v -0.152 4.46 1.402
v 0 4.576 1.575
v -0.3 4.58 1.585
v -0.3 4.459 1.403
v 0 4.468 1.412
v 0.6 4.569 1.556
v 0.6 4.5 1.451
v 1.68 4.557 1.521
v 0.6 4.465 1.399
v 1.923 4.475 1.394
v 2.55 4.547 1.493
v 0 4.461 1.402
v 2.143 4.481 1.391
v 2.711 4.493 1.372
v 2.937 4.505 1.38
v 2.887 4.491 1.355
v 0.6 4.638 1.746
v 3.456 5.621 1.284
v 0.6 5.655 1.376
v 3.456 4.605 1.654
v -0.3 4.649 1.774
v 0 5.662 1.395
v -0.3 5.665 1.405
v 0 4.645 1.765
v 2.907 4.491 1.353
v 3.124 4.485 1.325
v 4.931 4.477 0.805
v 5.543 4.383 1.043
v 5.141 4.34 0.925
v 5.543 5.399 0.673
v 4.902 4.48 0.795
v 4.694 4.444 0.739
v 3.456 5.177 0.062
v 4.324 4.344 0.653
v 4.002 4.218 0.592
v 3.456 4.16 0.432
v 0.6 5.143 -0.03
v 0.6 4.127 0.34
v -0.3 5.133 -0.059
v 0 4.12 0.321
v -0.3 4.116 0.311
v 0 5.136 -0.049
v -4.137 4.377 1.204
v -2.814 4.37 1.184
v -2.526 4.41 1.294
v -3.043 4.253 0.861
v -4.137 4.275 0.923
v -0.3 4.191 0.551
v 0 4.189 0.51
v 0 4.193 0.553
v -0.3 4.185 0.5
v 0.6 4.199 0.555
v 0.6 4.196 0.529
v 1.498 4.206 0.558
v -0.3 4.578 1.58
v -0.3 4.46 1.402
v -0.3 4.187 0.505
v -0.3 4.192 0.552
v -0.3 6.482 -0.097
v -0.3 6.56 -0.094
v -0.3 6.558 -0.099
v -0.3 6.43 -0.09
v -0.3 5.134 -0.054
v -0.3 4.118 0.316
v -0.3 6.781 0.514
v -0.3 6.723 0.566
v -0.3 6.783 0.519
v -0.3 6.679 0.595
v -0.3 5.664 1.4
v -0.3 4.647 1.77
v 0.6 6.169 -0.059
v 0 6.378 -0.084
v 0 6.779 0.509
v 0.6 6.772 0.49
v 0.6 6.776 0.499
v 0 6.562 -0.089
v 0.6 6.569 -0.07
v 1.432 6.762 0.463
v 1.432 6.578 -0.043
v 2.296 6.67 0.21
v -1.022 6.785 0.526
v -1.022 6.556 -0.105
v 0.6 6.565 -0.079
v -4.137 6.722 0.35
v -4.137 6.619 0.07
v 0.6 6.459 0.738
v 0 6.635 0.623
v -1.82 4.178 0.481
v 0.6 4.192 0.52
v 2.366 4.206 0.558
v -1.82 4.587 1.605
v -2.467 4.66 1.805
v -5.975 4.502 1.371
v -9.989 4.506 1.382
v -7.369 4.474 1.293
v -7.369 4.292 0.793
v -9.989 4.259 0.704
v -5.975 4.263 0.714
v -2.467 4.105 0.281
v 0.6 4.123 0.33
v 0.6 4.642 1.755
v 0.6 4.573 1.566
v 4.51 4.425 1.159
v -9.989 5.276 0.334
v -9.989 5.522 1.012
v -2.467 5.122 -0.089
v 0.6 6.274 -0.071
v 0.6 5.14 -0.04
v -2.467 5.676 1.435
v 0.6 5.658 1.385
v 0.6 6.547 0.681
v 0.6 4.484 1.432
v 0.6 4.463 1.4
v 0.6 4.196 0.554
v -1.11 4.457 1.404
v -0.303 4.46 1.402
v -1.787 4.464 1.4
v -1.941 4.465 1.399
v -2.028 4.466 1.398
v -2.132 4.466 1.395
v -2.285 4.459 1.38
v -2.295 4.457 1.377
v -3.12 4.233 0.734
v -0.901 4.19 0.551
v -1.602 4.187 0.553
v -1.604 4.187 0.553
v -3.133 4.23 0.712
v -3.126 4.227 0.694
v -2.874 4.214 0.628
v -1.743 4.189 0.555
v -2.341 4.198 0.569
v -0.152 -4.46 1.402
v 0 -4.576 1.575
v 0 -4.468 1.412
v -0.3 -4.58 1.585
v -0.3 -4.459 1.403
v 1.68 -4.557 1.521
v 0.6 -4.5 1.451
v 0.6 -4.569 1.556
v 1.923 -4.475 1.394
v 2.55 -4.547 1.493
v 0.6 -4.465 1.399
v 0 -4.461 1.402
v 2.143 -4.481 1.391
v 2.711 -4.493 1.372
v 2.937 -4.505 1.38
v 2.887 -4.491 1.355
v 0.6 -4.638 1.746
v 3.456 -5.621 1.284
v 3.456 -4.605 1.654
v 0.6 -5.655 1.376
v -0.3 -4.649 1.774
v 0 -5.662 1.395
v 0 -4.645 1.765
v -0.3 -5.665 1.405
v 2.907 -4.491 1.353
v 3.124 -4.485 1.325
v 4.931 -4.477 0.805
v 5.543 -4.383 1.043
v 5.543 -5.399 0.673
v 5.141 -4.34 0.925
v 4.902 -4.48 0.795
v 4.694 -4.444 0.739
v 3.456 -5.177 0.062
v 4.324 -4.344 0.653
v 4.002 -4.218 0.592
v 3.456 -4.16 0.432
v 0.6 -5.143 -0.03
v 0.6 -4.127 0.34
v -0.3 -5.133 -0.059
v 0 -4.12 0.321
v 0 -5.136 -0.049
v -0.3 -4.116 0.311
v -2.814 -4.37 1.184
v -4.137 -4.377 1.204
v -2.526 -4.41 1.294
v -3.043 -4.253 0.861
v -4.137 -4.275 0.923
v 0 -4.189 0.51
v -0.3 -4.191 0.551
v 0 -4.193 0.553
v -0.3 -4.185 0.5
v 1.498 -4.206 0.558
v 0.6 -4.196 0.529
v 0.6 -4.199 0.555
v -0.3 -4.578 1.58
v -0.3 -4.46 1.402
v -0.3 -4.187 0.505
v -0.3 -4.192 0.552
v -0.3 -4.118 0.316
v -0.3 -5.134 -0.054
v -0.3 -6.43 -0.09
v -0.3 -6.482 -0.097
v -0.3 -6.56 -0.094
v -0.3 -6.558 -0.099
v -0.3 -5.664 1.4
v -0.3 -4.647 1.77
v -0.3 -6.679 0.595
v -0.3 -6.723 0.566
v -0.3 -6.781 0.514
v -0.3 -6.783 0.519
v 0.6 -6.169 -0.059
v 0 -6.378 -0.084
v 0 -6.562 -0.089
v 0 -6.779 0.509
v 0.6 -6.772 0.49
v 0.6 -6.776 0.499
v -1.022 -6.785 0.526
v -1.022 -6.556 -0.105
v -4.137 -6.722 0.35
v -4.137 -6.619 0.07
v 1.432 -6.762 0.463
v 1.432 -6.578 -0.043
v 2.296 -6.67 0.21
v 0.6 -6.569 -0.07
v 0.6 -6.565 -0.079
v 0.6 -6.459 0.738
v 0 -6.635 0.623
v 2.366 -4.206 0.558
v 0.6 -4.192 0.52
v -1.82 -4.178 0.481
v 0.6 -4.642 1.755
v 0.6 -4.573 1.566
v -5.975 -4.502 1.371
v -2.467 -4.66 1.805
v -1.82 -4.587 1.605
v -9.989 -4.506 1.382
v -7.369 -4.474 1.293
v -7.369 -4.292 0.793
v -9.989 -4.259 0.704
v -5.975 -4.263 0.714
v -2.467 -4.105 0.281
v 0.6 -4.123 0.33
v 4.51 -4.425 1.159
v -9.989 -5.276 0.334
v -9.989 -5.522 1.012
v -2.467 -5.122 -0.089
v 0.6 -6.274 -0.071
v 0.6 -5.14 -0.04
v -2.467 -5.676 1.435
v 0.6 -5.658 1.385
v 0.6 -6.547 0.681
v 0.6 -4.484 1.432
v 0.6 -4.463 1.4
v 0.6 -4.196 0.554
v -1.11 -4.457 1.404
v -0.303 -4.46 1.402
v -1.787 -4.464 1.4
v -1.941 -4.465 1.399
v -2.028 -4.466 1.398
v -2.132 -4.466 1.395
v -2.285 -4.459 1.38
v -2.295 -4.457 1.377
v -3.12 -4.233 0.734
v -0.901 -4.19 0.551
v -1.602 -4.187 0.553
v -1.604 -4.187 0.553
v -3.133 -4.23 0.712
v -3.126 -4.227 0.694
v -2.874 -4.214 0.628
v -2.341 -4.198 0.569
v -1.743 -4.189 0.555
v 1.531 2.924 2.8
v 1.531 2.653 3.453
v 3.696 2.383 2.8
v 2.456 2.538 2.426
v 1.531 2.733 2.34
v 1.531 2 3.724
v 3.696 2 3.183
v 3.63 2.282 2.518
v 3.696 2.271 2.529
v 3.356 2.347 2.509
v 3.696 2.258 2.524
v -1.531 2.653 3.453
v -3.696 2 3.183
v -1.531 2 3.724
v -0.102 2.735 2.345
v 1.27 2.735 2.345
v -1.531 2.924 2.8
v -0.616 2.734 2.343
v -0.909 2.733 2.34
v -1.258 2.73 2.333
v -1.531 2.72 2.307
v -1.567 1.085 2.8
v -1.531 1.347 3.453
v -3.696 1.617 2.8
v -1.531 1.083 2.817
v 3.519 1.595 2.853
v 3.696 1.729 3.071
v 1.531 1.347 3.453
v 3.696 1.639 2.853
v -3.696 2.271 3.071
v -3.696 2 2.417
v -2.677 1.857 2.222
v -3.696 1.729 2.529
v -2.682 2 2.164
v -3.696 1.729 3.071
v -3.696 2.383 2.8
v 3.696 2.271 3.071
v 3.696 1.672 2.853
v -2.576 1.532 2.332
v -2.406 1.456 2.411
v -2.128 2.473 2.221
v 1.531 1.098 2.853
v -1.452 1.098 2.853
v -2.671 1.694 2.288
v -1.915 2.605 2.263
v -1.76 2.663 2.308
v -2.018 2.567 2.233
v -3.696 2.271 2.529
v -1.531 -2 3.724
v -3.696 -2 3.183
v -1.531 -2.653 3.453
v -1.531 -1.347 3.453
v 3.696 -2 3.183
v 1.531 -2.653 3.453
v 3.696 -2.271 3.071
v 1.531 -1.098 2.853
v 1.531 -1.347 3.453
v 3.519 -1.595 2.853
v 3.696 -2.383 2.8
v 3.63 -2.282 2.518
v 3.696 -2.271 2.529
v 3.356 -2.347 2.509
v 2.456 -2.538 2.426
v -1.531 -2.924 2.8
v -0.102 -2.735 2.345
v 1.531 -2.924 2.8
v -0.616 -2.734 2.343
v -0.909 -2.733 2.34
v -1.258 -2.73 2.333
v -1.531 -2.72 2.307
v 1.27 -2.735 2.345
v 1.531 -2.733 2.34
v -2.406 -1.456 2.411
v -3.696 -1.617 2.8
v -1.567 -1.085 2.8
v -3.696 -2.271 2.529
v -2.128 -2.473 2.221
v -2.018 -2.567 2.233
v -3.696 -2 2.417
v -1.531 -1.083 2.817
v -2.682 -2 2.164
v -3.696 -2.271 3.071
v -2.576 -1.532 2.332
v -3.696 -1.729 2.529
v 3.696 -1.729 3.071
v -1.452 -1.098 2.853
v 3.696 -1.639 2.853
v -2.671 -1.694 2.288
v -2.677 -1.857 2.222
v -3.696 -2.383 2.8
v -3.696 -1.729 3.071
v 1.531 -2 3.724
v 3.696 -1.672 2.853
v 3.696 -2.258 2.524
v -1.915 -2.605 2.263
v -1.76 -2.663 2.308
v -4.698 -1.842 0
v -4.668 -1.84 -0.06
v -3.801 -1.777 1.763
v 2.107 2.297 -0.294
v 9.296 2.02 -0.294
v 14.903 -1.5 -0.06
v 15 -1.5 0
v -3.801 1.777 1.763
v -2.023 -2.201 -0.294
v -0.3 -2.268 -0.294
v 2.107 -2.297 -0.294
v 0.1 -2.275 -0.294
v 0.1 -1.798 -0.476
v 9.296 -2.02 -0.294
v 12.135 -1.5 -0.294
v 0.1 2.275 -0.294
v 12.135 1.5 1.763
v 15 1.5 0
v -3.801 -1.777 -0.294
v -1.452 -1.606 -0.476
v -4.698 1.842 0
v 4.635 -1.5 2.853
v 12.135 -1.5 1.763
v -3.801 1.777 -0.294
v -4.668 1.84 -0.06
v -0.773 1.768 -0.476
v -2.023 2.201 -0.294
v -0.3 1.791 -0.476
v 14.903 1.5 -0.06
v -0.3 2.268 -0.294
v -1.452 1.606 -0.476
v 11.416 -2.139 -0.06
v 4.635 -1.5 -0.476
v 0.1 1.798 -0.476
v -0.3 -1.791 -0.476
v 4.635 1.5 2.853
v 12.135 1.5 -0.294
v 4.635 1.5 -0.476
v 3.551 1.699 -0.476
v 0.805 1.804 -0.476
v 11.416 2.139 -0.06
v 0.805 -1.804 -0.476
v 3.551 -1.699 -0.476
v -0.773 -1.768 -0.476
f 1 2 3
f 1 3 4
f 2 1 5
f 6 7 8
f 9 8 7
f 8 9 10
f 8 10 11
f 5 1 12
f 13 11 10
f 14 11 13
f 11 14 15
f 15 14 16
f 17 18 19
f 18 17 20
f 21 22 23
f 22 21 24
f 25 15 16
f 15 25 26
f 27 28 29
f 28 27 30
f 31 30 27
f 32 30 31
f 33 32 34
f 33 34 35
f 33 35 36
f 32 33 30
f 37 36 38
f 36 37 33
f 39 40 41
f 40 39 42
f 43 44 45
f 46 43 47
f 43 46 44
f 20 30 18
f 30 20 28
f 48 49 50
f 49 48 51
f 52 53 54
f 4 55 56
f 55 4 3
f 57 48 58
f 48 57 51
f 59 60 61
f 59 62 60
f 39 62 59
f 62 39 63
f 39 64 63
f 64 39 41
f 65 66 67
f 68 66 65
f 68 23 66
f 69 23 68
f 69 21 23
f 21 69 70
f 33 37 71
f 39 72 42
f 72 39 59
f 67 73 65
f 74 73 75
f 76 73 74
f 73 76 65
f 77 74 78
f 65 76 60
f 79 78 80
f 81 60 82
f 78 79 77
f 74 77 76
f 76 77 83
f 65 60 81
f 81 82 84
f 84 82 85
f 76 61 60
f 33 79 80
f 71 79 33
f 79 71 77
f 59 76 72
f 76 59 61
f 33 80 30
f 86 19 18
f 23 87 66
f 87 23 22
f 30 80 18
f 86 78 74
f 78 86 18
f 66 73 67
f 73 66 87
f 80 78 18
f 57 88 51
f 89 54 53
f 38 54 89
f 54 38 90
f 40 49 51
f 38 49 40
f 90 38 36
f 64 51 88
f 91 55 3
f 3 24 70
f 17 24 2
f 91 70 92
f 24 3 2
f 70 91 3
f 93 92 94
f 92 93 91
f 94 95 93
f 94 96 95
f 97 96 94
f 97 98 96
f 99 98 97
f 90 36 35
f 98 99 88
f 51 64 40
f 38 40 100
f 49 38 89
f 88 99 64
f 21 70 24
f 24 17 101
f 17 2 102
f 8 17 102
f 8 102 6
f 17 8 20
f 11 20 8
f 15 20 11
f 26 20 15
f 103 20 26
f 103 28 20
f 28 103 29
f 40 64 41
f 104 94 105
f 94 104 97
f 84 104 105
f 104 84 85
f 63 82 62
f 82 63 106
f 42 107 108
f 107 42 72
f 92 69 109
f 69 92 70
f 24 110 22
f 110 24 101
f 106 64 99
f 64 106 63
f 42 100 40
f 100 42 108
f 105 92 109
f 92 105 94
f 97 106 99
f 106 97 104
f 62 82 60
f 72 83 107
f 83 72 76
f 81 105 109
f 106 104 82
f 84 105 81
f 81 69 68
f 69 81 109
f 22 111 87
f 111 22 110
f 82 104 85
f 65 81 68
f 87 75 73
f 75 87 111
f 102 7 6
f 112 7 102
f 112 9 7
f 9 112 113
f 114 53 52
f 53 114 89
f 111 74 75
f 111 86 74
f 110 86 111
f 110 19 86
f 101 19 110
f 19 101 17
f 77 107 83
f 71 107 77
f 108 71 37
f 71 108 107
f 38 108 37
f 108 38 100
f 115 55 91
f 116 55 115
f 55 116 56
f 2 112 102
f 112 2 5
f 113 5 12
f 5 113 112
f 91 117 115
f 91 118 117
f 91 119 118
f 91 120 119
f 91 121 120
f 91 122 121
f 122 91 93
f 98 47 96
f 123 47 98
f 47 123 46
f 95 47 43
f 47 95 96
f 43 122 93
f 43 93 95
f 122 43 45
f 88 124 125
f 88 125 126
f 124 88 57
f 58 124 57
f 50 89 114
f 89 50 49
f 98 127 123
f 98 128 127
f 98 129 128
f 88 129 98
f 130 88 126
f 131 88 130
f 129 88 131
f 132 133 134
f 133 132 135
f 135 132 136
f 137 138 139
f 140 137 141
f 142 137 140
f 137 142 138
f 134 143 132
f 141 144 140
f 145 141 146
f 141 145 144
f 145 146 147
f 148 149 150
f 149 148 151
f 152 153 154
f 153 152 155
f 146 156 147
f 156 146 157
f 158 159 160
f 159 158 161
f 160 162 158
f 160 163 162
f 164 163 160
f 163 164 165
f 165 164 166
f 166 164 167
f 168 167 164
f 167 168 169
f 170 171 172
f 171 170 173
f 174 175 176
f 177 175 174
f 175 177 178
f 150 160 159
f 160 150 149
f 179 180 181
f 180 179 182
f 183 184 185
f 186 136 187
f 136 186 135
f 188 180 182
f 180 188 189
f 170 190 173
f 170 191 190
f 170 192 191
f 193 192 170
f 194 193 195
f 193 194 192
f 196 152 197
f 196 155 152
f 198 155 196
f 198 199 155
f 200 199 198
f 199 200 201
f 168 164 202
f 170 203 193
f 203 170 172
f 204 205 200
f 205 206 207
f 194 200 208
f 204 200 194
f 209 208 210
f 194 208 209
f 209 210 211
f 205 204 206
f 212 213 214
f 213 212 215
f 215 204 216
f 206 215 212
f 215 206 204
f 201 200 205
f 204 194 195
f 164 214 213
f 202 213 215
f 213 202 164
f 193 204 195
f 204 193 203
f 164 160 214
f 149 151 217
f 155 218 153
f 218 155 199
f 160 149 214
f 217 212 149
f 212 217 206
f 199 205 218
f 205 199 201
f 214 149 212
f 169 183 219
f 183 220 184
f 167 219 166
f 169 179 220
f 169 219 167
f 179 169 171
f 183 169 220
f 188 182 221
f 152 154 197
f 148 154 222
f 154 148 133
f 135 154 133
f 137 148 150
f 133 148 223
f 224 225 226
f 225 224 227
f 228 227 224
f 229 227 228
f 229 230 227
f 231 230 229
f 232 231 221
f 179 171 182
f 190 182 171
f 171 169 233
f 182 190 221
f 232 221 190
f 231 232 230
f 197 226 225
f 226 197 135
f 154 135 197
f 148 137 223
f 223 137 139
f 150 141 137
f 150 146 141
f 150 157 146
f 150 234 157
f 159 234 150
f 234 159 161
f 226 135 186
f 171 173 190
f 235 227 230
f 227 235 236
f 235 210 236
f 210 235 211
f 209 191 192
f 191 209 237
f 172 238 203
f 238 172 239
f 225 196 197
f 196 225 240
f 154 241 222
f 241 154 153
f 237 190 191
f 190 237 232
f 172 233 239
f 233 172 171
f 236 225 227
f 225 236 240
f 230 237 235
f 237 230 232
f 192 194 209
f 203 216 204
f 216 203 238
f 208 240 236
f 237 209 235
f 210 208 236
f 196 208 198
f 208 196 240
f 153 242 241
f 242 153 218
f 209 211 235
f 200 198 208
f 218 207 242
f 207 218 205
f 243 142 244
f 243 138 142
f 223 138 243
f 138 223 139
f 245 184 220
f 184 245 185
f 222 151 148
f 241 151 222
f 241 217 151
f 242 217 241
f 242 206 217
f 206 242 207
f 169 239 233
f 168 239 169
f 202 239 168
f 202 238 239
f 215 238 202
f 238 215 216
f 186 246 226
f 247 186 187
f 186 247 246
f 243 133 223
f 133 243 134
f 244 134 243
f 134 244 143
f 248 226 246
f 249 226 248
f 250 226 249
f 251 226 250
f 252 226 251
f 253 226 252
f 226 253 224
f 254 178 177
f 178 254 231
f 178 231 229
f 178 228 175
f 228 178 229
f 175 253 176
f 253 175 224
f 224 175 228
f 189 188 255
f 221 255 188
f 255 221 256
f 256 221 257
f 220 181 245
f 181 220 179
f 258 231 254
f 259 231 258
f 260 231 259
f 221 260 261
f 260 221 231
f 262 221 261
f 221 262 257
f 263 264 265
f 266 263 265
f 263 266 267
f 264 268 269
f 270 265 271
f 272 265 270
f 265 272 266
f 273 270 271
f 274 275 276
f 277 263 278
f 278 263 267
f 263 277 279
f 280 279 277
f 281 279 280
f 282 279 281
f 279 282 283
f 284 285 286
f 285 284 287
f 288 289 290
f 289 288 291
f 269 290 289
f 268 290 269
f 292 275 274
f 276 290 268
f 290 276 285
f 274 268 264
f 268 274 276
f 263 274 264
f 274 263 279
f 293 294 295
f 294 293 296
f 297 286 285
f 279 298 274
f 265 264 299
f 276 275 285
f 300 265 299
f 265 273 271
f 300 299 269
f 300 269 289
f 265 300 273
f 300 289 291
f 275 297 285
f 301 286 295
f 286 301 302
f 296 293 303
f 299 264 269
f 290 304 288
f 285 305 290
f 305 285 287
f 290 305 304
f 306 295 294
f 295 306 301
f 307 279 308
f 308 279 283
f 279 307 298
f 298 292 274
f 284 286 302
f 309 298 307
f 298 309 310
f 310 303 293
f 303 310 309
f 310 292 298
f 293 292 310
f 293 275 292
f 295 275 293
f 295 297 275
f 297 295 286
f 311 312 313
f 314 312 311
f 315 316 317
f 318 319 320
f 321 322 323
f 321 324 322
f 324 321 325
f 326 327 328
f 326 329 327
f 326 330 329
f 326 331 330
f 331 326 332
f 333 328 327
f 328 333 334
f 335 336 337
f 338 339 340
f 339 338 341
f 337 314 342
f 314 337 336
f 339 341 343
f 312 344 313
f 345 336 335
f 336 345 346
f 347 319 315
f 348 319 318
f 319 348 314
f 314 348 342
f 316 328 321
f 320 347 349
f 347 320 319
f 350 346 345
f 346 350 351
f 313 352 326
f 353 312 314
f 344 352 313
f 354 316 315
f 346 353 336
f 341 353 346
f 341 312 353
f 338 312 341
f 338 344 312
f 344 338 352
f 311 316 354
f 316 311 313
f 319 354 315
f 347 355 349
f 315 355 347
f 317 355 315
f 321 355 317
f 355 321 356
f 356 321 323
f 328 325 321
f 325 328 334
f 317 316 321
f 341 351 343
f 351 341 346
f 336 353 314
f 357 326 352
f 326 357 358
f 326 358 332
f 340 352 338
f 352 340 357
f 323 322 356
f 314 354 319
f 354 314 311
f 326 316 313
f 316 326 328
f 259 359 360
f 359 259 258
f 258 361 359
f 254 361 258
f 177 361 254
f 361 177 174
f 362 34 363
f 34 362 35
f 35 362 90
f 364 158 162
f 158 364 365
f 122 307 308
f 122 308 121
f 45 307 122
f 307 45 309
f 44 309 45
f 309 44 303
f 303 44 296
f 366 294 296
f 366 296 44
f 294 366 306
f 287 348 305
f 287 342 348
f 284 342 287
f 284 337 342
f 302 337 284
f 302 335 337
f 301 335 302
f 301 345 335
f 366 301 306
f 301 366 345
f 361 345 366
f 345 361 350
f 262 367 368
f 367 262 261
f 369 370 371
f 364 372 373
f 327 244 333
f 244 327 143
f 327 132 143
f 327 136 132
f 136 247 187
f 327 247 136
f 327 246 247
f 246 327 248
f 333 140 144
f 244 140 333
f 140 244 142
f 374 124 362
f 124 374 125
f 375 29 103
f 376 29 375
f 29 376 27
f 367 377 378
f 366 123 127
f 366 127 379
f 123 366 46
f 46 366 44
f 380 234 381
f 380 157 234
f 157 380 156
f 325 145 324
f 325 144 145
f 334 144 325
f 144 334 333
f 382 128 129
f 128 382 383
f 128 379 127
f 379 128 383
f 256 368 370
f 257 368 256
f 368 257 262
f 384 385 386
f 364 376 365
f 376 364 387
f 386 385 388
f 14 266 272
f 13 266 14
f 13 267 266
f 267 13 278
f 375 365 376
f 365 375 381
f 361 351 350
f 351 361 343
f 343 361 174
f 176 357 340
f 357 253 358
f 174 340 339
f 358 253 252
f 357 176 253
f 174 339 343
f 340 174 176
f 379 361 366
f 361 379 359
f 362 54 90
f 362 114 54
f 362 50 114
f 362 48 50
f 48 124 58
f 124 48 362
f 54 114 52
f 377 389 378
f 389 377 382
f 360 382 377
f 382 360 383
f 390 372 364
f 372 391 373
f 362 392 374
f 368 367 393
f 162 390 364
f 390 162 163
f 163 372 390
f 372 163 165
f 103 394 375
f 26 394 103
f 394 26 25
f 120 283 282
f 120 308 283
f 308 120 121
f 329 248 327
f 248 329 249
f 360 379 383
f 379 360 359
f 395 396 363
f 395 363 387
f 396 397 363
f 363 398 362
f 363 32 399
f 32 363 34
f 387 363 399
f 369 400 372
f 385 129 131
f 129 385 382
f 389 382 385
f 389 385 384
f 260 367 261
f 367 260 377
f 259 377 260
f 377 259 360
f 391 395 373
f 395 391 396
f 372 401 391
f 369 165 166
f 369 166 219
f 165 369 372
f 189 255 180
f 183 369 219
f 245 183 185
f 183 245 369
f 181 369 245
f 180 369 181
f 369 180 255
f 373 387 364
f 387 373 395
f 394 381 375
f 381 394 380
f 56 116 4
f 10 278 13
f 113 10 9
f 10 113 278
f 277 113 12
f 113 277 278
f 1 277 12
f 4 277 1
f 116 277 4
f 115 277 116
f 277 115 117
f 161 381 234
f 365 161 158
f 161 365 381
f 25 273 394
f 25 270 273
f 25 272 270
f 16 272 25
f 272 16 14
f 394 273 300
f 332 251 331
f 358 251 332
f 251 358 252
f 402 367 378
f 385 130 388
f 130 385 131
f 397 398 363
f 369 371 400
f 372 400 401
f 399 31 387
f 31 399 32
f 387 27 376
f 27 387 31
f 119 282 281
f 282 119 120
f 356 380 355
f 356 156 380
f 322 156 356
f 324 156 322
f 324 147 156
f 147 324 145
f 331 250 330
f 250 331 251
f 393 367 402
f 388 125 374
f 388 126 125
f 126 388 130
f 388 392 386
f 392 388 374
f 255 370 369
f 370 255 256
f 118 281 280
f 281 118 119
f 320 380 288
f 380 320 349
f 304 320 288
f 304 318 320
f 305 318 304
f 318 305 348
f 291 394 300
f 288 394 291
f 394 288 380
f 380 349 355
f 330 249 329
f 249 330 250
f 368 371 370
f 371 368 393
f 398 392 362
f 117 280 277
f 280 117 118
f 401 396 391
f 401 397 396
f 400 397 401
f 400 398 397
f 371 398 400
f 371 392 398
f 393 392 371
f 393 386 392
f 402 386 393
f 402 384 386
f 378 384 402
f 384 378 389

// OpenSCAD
// file: ../lib/util.scad
fn1 = 32;
fn2 = 16;

module util_half_sphere(radius, fn=fn1) {
    difference() {
        sphere(radius, $fn=fn);
        translate([0,0,-(radius+radius/19)])
            cube(2*radius+radius/10, center=true);
    }
}

function gcd(a,b) = a == b ? a : a > b ? gcd(a-b, b) : gcd(a, b-a);

module util_saucer(length, width, height, fn=fn1) {
    rad = gcd(length,gcd(width,height));
    //rad = 10;
    scale([length/(2*rad), width/(2*rad), height/rad])
        util_half_sphere(rad, fn);
}

module util_half_cylinder(length, radius, inner_fn=fn2, outer_fn=fn1) {
    maxval = max(length, 2*radius);
    intersection() {
        difference() {
            rotate([0,90,0])
                translate([0,0,-(length/2 + length/20)])
                    cylinder(length+length/10, radius, radius, $fn=inner_fn);
            
            translate([0,0,(maxval/2 + maxval/19)])
                cube(maxval+maxval/10, center=true);
        }
        
        translate([0,0,-(radius+radius/20)])
            cylinder(radius + radius/10, length/2, length/2, $fn=outer_fn);
    }
}

module util_body(length, width, height, upper_height, fn=fn1) {
    rad = gcd(length, gcd(width, upper_height));
    
    scale(.995) scale([length/(2*rad), width/(2*rad), 1])
        util_half_cylinder(2*rad, height, outer_fn=fn);
}

module util_graded_cylinder(height, radius_start, radius_end, grades=1, fn=fn1) {
    height_grade = height / grades;
    radius_grade = (radius_start - radius_end) / (grades * grades);
    for (i = [0 : 1 : grades]) {
        translate([0,0,i*height_grade])
            cylinder(height_grade, 
                     radius_start - i*radius_grade * i,
                     radius_start - (i+1) * radius_grade * (i+1),
                     $fn = fn);
    }
}

module util_nacelle(length, width, height, curved=false, up=true, front_bulge=false) {
    rad = min(width, height/2);
    grads = curved ? 6 : 1;
    scale_factor = front_bulge ? 1.1 : 1;
    direction = up ? -1 : 1;
    difference() {
        scale([1, width/ (2*rad), height/rad])
            difference() {
                union() {
                    rotate([0,-90,0])
                        rotate(30)
                            util_graded_cylinder(length-rad, rad, rad/2, grads, 6);
                    scale(scale_factor) 
                        rotate([0,90,0]) rotate(90) sphere(rad, $fn=6);
                }
                
                translate([-length/2, 0, direction * (height/2 + height/19)])
                    cube([length+length, width+width, height+height/10], center=true);
            }
        
        translate([-length-(curved?length/3:0), 0, -length/3])
            rotate([0,-45,0])
                cube(length, center=true);
    }
}

module util_mirrored(v) {
    children();
    mirror(v) children();
}

module util_ring(outer, inner, height) {
    difference() {
        translate([0,0,-height/2])
            cylinder(height, outer, outer);
        translate([0,0,-(height/2 + height/19)])
            cylinder(height+height/10, inner, inner);
    }
}

module util_star(radius, thick, num, half=false) {
    angle = 360/num;
    offset = half? angle/2 : 0;
    for (i = [0: 1: num]) {
        rotate(i* angle + offset)
            translate([radius/2,0,0])
                cube([radius, thick, thick], center=true);
    }
}

module util_ring_star(radius, thick, num, inner, half=false) {
    outer=inner+thick;
    avg = (inner + outer)/2;
    union() {
        difference() {
            util_star(radius, thick, num, half);
            cylinder(2*thick, outer, outer, $fn=num, center=true);
        }
        util_ring(outer, inner, thick);
    }
}

module util_hangar_disk(height, lower, upper, num, fn=fn1) {
    difference() {
            cylinder(height, lower, upper, $fn=fn, center=true);
        difference() {
            scale([1,1,22])
                util_star(1.1*upper, height/20, num, half=true);
            scale(.95)
                cylinder(height, lower, upper, $fn=fn, center=true);
        }
    }
}

module util_hangar_form(length, width, height, num, inner=0) {
    l = 0.6* max(length, width);
    h = 2.5* height;
    thick = min(height/20,1);
    inner = inner == 0 ? l/3 : inner;
    difference() {
        children();
        scale([1,1,h/thick]) 
            util_ring_star(l, thick, num, inner, half=true);
    }
    scale(.95) children();
}

module util_nacelle_bar(span, height, width, thickness) {
    rad = (span*span/(8*height) + height/2);
    outer = rad + thickness/2;
    inner = rad - thickness/2;
    difference(){
        translate([0,0,outer])
            rotate([0,90,0])
                util_ring(outer, inner, width);
    
        translate([0,0,1.1*outer+height])
            cube(2.2*outer, center=true);
    }
}

module util_q_sphere(rad, quadrant, faces) {
    x_sign = quadrant == 1 ? 1 :
             quadrant == 2 ? -1 :
             quadrant == 3 ? -1 :
             quadrant == 4 ? 1 : 0;
    z_sign = quadrant == 1 ? 1 :
             quadrant == 2 ? 1 :
             quadrant == 3 ? -1 :
             quadrant == 4 ? -1 : 0;
    
    difference() {
        sphere(rad, $fn=faces);

        translate([x_sign*(-1.1*rad - .01),0,0])
        cube(2.2*rad, center=true);

        translate([0,0,z_sign*(-1.1*rad - .01)])
        cube(2.2*rad, center=true);
    }
}

module util_ovoid(front_rad, back_rad, width, upper_rad, lower_rad, faces=32) {
    half_width = width/2;
    largest=max(front_rad, back_rad, half_width, upper_rad, lower_rad);
    smallest=min(front_rad, back_rad, half_width, upper_rad, lower_rad);
    
    union() {
        scale([front_rad/smallest, half_width/smallest, upper_rad/smallest])
        util_q_sphere(smallest, 1, faces);
        
        scale([front_rad/smallest, half_width/smallest, lower_rad/smallest])
        util_q_sphere(smallest, 4, faces);
        
        scale([back_rad/smallest, half_width/smallest, lower_rad/smallest])
        util_q_sphere(smallest, 3, faces);
        
        scale([back_rad/smallest, half_width/smallest, upper_rad/smallest])
        util_q_sphere(smallest, 2, faces);
    }
}
// main file
use <../lib/util.scad>;

module tac_body() {
    hull() {
        util_mirrored([0,1,0])
        translate([0,1.5,0])
        util_ovoid(15,5,2,3,.5,faces=9);

        util_mirrored([1,0,0])
        translate([2,0,1])
        util_ovoid(1,1,12,1,1,faces=6);
    }
}

module tac_nacelle() {
    util_ovoid(6,12,1.8,.2, 2.5, faces=7);
}

module tactical() {
    tac_body();

    util_mirrored([0,1,0])
    translate([0,4.5,1])
    rotate([70,0,0])
    tac_nacelle();

    util_mirrored([0,1,0])
    translate([0,2,2.8])
    scale([4,1,1])
    rotate([0,90,0])
    sphere(d=2, $fn=8);
}

tactical();
